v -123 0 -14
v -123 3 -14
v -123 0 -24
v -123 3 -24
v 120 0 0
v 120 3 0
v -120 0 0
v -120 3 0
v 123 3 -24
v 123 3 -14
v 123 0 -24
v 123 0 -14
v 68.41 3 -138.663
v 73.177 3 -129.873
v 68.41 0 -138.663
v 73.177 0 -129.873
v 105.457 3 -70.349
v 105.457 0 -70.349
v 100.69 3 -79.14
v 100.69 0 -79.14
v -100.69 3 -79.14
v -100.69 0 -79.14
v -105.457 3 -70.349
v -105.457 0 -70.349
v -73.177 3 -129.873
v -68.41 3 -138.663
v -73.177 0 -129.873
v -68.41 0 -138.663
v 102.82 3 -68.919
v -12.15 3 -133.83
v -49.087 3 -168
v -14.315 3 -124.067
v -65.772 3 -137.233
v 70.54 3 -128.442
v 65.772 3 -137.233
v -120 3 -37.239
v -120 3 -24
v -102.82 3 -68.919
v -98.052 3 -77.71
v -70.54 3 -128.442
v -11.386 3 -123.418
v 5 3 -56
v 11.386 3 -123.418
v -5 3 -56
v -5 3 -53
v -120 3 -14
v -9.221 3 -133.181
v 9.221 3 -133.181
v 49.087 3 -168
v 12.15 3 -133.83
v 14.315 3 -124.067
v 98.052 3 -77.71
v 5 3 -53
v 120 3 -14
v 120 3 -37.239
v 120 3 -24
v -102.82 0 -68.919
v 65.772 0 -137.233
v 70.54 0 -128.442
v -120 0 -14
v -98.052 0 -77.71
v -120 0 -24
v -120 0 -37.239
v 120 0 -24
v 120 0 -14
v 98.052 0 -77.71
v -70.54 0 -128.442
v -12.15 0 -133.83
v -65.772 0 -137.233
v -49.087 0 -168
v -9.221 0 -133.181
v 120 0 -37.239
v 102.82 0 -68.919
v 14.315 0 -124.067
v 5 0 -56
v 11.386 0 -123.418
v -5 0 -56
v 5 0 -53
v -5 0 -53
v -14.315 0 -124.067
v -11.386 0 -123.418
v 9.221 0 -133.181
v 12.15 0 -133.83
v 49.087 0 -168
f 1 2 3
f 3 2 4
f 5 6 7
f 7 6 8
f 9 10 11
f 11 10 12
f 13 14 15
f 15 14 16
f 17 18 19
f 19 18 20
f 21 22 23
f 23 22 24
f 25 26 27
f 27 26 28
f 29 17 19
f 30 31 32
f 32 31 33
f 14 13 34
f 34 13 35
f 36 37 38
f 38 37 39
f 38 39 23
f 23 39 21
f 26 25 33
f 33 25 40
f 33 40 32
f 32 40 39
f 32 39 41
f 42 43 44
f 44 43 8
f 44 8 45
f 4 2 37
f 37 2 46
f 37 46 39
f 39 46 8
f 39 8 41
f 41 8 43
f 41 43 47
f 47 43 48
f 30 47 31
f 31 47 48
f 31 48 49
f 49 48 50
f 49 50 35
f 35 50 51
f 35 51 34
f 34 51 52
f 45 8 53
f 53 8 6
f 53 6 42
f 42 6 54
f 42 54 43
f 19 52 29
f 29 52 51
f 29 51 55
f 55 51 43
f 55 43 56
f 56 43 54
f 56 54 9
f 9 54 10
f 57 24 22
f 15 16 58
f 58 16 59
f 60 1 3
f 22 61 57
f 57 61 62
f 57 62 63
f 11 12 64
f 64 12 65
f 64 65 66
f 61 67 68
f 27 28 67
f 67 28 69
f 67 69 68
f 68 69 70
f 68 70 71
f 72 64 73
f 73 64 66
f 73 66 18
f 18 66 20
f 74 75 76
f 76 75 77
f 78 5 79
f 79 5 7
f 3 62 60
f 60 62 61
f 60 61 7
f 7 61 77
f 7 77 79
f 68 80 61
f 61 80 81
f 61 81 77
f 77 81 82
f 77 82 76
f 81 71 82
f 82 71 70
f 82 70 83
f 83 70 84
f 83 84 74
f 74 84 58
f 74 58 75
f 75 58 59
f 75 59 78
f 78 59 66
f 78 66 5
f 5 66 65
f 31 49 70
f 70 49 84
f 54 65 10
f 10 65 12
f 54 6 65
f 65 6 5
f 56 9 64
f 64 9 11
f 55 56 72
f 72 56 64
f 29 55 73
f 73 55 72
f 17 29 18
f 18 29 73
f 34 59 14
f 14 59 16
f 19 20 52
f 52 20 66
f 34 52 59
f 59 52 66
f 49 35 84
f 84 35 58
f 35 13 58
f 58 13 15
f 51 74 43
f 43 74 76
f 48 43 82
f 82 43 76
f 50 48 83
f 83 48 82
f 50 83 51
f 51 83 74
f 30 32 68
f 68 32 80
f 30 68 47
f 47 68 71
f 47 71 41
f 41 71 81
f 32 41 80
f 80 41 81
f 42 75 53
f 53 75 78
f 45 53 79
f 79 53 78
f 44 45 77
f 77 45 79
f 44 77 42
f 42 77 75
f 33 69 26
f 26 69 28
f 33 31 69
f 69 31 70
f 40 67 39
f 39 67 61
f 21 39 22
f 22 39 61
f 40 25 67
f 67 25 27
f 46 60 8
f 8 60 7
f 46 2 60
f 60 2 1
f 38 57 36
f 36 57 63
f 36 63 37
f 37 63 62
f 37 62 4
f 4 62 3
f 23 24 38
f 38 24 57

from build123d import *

# Parameters (mm, degrees)
BOSS_EXTRUDE1_DEPTH = 3
SKETCH2_W           = 10
SKETCH2_H           = 3
CUT_EXTRUDE3_DEPTH  = 10


with BuildPart() as part:
    # Sketch1 → Boss-Extrude1 (new body)
    with BuildSketch(Plane(origin=(0, 0, 0), x_dir=(1, 0, 0), z_dir=(0, 1, 0))):
        Polygon((-123, 0), (123, 0), (123, 38), (52.5, 168), (-52.5, 168), (-123, 38), align=None)
    extrude(amount=BOSS_EXTRUDE1_DEPTH)

    # Sketch2 → Cut-Extrude3 (cut)
    with BuildSketch(Plane(origin=(0, 3, 0), x_dir=(1, 0, 0), z_dir=(0, 1, 0))):
        Polygon((120, 3), (120, 0), (123, 0), (123, 14), (120, 14), align=None)
        Polygon((120, 37.23889635), (120, 24), (123, 24), (123, 38), (105.456749613, 70.349256033), (102.819582002, 68.919099751), align=None)
        Polygon((70.539591859, 128.44248583), (98.052394397, 77.709658456), (100.689562008, 79.139814737), (73.17675947, 129.872642111), align=None)
        Polygon((50.714170713, 165), (65.772404254, 137.233044534), (68.409571865, 138.663200816), (52.5, 168), (49.087247636, 168), align=None)
        Polygon((14.314512119, 124.067092532), (11.385651621, 123.417649552), (9.220841688, 133.180517879), (12.149702186, 133.829960859), align=None)
        Polygon((-12.149702186, 133.829960859), (-14.314512119, 124.067092532), (-11.385651621, 123.417649552), (-9.220841688, 133.180517879), align=None)
        with Locations((0, 54.5)):
            Rectangle(SKETCH2_W, SKETCH2_H)
        Polygon((-52.5, 168), (-68.409571865, 138.663200816), (-65.772404254, 137.233044534), (-50.714170713, 165), (-49.087247636, 168), align=None)
        Polygon((-73.17675947, 129.872642111), (-100.689562008, 79.139814737), (-98.052394397, 77.709658456), (-70.539591859, 128.44248583), align=None)
        Polygon((-123, 14), (-123, 0), (-120, 0), (-120, 3), (-120, 14), align=None)
        Polygon((-123, 38), (-123, 24), (-120, 24), (-120, 37.23889635), (-102.819582002, 68.919099751), (-105.456749613, 70.349256033), align=None)
    extrude(amount=-CUT_EXTRUDE3_DEPTH, mode=Mode.SUBTRACT)


solid = part.part
